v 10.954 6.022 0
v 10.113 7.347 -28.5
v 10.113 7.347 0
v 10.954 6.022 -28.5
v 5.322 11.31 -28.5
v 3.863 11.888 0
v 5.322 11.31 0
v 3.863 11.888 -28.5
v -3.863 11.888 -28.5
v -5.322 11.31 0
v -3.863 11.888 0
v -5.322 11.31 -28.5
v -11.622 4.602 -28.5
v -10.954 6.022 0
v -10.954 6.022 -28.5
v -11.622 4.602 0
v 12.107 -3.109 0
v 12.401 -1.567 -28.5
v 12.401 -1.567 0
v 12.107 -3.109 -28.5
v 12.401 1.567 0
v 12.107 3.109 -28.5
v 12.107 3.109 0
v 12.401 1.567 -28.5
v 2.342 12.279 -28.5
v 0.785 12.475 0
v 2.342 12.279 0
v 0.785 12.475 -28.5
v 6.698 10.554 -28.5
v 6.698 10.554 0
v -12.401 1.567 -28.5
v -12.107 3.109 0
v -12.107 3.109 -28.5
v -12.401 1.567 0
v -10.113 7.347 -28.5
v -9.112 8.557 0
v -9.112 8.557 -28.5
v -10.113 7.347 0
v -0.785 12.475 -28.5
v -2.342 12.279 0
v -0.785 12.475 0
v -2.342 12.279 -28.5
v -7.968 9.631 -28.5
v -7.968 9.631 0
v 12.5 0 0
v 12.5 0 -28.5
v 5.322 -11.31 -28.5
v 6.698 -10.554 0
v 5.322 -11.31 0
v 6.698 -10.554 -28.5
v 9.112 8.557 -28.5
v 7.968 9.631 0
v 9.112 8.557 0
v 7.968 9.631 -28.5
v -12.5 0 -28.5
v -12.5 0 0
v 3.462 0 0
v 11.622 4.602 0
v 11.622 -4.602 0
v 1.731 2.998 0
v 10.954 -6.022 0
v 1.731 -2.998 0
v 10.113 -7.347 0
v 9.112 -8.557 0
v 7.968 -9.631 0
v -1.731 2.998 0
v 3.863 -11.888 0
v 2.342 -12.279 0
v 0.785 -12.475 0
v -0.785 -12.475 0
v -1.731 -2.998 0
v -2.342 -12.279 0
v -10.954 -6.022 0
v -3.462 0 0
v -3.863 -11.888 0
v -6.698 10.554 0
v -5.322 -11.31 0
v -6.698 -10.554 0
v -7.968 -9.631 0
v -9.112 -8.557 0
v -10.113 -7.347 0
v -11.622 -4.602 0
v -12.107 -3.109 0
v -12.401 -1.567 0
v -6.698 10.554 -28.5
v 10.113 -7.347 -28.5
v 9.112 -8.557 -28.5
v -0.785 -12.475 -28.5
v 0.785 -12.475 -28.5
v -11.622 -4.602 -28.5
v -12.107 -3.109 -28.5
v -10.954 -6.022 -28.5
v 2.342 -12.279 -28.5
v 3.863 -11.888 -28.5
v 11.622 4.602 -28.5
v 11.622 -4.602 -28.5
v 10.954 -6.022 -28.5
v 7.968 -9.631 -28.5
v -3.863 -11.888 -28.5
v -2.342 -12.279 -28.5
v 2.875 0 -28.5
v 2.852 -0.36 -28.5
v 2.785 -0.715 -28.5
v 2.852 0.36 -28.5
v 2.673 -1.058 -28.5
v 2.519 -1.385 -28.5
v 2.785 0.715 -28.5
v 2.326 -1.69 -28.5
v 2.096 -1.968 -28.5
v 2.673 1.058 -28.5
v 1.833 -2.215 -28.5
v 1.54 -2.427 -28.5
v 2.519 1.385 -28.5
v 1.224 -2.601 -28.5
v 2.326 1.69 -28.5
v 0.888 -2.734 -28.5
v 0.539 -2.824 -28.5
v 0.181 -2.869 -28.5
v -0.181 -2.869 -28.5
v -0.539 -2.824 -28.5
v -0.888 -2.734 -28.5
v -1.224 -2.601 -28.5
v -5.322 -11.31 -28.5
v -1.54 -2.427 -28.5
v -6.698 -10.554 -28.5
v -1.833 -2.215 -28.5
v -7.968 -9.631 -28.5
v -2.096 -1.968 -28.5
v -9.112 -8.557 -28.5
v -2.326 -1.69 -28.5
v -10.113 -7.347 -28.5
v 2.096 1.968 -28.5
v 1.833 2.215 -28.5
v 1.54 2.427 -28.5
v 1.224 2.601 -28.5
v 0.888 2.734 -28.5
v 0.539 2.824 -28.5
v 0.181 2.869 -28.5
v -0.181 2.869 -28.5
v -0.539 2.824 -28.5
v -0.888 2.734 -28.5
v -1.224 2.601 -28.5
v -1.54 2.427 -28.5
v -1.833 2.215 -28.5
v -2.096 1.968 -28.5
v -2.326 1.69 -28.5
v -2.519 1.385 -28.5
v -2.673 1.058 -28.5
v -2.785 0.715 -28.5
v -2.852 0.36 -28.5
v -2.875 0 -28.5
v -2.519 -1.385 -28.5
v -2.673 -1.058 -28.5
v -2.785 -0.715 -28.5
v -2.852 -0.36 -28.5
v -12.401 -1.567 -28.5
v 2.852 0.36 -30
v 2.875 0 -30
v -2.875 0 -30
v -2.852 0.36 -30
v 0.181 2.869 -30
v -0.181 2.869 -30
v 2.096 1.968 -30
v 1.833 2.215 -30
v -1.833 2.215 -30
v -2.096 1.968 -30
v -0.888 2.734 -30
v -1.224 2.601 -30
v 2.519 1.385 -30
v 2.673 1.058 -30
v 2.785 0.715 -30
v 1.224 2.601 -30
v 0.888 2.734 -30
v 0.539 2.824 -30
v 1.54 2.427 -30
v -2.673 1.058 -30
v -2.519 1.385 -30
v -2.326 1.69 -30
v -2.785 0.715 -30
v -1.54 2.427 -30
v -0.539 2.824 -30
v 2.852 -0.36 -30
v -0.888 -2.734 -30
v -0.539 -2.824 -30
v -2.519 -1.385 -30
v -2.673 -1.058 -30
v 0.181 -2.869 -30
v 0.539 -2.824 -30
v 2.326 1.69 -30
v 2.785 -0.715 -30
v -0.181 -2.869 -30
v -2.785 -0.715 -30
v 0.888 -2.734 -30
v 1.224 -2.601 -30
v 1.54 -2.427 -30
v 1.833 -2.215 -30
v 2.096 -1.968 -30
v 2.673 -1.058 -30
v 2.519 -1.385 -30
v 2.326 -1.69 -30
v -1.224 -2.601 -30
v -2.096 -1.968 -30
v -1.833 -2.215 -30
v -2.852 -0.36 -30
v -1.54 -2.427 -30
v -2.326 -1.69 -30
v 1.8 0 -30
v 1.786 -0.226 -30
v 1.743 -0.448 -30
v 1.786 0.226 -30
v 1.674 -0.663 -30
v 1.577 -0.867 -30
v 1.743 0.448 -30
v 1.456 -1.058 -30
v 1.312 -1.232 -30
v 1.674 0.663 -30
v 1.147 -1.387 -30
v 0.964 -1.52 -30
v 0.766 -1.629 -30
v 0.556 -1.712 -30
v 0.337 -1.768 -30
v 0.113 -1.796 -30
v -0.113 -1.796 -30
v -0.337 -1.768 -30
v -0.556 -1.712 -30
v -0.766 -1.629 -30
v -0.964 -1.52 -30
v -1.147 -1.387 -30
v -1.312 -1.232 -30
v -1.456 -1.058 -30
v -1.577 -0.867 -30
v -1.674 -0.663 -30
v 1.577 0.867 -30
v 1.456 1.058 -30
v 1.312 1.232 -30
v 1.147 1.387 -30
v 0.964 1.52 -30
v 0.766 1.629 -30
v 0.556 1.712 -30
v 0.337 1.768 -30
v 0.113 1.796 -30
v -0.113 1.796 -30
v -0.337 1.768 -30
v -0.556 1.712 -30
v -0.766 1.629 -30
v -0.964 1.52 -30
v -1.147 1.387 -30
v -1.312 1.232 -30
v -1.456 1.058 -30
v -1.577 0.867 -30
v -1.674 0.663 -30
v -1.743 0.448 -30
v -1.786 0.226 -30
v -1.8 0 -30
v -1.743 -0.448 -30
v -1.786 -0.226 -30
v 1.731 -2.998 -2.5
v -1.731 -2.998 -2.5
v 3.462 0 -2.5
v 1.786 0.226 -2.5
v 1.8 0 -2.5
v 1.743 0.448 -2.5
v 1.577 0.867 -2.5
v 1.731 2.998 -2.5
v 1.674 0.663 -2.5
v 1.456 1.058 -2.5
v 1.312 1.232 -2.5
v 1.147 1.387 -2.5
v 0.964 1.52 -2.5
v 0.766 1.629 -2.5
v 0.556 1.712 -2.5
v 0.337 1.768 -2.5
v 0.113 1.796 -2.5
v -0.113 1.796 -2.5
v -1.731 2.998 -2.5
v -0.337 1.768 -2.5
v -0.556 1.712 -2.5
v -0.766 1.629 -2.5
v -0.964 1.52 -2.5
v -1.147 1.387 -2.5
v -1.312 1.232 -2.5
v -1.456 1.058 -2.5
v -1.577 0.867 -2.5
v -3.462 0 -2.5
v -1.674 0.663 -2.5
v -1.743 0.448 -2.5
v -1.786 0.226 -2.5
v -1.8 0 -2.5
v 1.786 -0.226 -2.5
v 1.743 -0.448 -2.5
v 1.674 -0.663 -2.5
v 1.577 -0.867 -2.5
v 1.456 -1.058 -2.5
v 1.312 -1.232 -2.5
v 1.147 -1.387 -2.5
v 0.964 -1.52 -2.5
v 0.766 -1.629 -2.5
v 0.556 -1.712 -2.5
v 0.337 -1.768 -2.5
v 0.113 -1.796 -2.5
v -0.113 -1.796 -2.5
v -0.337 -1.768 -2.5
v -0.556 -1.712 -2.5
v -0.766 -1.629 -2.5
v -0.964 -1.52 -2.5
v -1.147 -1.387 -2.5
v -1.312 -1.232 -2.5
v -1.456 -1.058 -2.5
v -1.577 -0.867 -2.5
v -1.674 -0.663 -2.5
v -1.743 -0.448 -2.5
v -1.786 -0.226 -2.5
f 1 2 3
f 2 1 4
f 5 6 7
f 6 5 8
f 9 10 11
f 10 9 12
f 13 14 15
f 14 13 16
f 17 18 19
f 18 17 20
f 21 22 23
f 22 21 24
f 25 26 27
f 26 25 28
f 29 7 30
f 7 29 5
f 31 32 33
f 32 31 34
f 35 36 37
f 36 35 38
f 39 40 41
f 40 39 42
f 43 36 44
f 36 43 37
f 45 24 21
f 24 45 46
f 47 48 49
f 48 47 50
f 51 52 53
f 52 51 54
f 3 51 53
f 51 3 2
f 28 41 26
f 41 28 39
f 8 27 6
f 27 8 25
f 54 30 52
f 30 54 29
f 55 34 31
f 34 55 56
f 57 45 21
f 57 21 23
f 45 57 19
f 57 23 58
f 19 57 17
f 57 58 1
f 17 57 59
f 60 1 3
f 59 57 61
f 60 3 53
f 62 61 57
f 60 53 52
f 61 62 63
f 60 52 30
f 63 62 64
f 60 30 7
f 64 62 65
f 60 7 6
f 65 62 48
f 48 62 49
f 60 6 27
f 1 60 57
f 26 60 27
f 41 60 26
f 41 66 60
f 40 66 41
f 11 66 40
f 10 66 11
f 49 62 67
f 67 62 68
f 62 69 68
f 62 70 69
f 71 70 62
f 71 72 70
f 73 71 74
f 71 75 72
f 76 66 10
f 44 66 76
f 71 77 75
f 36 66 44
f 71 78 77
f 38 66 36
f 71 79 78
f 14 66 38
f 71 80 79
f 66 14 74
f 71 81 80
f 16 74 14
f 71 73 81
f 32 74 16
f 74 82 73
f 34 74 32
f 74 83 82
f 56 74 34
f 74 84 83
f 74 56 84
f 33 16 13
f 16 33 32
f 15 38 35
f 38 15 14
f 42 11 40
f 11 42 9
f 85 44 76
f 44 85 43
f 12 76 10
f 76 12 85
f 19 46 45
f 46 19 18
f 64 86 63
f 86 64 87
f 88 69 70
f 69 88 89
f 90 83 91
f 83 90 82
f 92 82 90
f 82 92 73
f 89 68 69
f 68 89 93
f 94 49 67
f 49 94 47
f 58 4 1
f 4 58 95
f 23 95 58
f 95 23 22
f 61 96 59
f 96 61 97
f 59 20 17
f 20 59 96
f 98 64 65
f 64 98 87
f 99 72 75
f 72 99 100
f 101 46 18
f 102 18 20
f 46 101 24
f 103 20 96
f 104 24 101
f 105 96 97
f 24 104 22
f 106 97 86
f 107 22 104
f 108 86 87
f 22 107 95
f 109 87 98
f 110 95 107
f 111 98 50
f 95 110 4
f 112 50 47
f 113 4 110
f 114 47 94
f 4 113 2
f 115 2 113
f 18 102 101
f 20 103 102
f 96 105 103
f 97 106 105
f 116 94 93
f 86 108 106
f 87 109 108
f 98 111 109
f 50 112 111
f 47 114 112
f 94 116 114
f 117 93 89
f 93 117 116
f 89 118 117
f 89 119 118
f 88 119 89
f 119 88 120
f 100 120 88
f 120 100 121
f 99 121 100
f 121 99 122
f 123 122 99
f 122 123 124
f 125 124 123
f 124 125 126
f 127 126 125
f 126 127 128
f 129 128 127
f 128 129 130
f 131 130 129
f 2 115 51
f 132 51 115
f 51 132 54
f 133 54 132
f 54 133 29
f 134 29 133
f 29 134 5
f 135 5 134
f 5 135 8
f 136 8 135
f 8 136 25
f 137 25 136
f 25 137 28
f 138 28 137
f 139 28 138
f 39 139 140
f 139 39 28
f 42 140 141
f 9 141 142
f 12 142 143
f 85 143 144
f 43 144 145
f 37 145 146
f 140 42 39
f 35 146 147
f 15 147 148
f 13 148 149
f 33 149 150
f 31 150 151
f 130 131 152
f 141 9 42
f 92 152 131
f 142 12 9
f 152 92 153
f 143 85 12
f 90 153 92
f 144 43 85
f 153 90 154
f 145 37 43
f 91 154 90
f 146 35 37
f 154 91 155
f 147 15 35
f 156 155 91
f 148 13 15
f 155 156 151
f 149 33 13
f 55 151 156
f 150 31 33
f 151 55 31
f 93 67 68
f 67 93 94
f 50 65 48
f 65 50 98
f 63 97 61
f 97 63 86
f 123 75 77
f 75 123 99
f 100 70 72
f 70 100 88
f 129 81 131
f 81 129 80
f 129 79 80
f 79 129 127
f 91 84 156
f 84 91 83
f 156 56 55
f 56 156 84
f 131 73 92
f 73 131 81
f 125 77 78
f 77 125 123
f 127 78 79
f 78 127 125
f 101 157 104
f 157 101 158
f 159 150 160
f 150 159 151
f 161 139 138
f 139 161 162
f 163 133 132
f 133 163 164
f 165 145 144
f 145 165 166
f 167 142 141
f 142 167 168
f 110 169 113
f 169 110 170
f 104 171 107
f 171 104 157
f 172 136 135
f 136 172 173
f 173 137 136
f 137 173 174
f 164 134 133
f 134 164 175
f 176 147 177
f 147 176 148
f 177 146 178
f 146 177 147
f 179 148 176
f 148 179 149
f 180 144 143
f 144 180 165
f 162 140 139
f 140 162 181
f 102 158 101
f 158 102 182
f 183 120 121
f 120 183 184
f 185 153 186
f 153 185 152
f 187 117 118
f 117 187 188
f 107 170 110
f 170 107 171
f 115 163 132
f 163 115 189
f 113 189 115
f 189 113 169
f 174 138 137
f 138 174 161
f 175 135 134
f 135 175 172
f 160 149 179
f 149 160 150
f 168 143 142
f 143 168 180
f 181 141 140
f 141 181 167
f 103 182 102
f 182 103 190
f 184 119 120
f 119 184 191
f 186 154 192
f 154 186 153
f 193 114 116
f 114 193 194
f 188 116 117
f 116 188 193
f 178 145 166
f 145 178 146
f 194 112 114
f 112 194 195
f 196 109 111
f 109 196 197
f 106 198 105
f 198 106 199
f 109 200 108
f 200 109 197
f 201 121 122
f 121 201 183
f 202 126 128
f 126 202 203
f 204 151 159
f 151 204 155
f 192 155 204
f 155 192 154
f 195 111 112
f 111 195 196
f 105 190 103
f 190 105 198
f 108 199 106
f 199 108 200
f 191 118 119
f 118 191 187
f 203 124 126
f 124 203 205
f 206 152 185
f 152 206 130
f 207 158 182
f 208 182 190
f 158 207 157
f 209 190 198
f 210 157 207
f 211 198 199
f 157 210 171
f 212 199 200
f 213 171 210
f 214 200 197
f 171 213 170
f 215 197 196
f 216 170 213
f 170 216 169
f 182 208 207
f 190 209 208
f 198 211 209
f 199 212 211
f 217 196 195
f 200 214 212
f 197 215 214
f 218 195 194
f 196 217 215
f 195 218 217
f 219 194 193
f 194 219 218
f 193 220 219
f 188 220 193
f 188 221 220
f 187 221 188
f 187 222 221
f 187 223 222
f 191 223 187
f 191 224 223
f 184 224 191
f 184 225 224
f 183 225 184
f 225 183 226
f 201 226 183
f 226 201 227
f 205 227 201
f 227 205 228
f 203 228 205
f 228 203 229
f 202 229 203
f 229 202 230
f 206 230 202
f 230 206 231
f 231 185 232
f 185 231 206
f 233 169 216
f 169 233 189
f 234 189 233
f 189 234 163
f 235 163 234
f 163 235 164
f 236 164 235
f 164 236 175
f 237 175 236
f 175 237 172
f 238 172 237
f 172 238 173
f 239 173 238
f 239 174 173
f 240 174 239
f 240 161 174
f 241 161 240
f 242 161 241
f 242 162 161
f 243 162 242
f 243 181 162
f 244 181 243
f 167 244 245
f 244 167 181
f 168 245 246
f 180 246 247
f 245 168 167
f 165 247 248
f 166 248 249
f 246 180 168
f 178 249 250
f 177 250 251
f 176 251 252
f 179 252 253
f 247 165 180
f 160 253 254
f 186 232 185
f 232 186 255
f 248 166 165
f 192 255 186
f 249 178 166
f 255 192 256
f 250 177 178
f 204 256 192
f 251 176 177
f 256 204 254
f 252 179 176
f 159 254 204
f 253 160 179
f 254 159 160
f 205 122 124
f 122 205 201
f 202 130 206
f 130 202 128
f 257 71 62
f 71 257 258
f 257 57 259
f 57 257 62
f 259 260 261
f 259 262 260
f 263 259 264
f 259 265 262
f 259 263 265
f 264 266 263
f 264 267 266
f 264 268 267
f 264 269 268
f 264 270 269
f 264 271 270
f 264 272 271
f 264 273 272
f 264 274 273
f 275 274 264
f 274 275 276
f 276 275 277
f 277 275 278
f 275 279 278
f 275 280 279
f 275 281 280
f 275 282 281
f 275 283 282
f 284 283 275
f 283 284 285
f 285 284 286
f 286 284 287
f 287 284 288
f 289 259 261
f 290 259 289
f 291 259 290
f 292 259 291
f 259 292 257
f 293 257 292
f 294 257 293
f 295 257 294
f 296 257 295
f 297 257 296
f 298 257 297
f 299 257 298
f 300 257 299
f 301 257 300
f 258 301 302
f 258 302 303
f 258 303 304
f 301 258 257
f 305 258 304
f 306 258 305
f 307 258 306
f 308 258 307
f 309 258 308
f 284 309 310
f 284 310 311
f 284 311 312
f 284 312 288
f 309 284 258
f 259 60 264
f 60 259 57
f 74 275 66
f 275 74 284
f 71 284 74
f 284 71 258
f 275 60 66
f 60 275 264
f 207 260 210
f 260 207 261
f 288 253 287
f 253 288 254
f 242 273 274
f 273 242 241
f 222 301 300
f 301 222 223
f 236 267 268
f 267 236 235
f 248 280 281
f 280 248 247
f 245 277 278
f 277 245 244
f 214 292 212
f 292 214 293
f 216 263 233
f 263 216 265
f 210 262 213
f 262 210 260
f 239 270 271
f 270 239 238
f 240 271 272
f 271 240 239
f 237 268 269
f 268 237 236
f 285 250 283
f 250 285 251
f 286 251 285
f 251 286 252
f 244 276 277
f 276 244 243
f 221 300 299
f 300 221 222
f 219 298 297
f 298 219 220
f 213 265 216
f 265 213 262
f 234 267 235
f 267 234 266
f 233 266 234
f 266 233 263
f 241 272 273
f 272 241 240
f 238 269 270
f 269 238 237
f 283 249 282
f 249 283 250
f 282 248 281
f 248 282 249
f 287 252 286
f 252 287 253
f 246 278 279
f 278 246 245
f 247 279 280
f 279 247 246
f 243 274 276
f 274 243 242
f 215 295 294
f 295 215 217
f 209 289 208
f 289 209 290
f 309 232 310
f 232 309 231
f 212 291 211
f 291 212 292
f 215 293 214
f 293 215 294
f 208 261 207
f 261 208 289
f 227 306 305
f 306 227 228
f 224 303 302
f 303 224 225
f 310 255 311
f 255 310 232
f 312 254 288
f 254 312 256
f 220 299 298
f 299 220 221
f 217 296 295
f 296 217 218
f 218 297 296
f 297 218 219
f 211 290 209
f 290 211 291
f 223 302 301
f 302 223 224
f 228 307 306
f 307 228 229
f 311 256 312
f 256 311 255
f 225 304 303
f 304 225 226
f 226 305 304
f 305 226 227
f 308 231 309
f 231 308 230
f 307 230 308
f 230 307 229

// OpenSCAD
$fn = 50;


difference() {
	union() {
		translate(v = [0, 0, -28.5000000000]) {
			cylinder(h = 28.5000000000, r = 12.5000000000);
		}
		#translate(v = [0, 0, -30.0000000000]) {
			cylinder(h = 30, r = 2.8750000000);
		}
	}
	union() {
		translate(v = [0, 0, 0]) {
			rotate(a = [0, 0, 0]) {
				difference() {
					union() {
						translate(v = [0, 0, -2.5000000000]) {
							linear_extrude(height = 2.5000000000) {
								polygon(points = [[3.4620000000, 0.0000000000], [1.7310000000, 2.9981799479], [-1.7310000000, 2.9981799479], [-3.4620000000, 0.0000000000], [-1.7310000000, -2.9981799479], [1.7310000000, -2.9981799479]]);
							}
						}
					}
					union();
				}
			}
		}
		#translate(v = [0, 0, -100.0000000000]) {
			cylinder(h = 200, r = 1.8000000000);
		}
	}
}
